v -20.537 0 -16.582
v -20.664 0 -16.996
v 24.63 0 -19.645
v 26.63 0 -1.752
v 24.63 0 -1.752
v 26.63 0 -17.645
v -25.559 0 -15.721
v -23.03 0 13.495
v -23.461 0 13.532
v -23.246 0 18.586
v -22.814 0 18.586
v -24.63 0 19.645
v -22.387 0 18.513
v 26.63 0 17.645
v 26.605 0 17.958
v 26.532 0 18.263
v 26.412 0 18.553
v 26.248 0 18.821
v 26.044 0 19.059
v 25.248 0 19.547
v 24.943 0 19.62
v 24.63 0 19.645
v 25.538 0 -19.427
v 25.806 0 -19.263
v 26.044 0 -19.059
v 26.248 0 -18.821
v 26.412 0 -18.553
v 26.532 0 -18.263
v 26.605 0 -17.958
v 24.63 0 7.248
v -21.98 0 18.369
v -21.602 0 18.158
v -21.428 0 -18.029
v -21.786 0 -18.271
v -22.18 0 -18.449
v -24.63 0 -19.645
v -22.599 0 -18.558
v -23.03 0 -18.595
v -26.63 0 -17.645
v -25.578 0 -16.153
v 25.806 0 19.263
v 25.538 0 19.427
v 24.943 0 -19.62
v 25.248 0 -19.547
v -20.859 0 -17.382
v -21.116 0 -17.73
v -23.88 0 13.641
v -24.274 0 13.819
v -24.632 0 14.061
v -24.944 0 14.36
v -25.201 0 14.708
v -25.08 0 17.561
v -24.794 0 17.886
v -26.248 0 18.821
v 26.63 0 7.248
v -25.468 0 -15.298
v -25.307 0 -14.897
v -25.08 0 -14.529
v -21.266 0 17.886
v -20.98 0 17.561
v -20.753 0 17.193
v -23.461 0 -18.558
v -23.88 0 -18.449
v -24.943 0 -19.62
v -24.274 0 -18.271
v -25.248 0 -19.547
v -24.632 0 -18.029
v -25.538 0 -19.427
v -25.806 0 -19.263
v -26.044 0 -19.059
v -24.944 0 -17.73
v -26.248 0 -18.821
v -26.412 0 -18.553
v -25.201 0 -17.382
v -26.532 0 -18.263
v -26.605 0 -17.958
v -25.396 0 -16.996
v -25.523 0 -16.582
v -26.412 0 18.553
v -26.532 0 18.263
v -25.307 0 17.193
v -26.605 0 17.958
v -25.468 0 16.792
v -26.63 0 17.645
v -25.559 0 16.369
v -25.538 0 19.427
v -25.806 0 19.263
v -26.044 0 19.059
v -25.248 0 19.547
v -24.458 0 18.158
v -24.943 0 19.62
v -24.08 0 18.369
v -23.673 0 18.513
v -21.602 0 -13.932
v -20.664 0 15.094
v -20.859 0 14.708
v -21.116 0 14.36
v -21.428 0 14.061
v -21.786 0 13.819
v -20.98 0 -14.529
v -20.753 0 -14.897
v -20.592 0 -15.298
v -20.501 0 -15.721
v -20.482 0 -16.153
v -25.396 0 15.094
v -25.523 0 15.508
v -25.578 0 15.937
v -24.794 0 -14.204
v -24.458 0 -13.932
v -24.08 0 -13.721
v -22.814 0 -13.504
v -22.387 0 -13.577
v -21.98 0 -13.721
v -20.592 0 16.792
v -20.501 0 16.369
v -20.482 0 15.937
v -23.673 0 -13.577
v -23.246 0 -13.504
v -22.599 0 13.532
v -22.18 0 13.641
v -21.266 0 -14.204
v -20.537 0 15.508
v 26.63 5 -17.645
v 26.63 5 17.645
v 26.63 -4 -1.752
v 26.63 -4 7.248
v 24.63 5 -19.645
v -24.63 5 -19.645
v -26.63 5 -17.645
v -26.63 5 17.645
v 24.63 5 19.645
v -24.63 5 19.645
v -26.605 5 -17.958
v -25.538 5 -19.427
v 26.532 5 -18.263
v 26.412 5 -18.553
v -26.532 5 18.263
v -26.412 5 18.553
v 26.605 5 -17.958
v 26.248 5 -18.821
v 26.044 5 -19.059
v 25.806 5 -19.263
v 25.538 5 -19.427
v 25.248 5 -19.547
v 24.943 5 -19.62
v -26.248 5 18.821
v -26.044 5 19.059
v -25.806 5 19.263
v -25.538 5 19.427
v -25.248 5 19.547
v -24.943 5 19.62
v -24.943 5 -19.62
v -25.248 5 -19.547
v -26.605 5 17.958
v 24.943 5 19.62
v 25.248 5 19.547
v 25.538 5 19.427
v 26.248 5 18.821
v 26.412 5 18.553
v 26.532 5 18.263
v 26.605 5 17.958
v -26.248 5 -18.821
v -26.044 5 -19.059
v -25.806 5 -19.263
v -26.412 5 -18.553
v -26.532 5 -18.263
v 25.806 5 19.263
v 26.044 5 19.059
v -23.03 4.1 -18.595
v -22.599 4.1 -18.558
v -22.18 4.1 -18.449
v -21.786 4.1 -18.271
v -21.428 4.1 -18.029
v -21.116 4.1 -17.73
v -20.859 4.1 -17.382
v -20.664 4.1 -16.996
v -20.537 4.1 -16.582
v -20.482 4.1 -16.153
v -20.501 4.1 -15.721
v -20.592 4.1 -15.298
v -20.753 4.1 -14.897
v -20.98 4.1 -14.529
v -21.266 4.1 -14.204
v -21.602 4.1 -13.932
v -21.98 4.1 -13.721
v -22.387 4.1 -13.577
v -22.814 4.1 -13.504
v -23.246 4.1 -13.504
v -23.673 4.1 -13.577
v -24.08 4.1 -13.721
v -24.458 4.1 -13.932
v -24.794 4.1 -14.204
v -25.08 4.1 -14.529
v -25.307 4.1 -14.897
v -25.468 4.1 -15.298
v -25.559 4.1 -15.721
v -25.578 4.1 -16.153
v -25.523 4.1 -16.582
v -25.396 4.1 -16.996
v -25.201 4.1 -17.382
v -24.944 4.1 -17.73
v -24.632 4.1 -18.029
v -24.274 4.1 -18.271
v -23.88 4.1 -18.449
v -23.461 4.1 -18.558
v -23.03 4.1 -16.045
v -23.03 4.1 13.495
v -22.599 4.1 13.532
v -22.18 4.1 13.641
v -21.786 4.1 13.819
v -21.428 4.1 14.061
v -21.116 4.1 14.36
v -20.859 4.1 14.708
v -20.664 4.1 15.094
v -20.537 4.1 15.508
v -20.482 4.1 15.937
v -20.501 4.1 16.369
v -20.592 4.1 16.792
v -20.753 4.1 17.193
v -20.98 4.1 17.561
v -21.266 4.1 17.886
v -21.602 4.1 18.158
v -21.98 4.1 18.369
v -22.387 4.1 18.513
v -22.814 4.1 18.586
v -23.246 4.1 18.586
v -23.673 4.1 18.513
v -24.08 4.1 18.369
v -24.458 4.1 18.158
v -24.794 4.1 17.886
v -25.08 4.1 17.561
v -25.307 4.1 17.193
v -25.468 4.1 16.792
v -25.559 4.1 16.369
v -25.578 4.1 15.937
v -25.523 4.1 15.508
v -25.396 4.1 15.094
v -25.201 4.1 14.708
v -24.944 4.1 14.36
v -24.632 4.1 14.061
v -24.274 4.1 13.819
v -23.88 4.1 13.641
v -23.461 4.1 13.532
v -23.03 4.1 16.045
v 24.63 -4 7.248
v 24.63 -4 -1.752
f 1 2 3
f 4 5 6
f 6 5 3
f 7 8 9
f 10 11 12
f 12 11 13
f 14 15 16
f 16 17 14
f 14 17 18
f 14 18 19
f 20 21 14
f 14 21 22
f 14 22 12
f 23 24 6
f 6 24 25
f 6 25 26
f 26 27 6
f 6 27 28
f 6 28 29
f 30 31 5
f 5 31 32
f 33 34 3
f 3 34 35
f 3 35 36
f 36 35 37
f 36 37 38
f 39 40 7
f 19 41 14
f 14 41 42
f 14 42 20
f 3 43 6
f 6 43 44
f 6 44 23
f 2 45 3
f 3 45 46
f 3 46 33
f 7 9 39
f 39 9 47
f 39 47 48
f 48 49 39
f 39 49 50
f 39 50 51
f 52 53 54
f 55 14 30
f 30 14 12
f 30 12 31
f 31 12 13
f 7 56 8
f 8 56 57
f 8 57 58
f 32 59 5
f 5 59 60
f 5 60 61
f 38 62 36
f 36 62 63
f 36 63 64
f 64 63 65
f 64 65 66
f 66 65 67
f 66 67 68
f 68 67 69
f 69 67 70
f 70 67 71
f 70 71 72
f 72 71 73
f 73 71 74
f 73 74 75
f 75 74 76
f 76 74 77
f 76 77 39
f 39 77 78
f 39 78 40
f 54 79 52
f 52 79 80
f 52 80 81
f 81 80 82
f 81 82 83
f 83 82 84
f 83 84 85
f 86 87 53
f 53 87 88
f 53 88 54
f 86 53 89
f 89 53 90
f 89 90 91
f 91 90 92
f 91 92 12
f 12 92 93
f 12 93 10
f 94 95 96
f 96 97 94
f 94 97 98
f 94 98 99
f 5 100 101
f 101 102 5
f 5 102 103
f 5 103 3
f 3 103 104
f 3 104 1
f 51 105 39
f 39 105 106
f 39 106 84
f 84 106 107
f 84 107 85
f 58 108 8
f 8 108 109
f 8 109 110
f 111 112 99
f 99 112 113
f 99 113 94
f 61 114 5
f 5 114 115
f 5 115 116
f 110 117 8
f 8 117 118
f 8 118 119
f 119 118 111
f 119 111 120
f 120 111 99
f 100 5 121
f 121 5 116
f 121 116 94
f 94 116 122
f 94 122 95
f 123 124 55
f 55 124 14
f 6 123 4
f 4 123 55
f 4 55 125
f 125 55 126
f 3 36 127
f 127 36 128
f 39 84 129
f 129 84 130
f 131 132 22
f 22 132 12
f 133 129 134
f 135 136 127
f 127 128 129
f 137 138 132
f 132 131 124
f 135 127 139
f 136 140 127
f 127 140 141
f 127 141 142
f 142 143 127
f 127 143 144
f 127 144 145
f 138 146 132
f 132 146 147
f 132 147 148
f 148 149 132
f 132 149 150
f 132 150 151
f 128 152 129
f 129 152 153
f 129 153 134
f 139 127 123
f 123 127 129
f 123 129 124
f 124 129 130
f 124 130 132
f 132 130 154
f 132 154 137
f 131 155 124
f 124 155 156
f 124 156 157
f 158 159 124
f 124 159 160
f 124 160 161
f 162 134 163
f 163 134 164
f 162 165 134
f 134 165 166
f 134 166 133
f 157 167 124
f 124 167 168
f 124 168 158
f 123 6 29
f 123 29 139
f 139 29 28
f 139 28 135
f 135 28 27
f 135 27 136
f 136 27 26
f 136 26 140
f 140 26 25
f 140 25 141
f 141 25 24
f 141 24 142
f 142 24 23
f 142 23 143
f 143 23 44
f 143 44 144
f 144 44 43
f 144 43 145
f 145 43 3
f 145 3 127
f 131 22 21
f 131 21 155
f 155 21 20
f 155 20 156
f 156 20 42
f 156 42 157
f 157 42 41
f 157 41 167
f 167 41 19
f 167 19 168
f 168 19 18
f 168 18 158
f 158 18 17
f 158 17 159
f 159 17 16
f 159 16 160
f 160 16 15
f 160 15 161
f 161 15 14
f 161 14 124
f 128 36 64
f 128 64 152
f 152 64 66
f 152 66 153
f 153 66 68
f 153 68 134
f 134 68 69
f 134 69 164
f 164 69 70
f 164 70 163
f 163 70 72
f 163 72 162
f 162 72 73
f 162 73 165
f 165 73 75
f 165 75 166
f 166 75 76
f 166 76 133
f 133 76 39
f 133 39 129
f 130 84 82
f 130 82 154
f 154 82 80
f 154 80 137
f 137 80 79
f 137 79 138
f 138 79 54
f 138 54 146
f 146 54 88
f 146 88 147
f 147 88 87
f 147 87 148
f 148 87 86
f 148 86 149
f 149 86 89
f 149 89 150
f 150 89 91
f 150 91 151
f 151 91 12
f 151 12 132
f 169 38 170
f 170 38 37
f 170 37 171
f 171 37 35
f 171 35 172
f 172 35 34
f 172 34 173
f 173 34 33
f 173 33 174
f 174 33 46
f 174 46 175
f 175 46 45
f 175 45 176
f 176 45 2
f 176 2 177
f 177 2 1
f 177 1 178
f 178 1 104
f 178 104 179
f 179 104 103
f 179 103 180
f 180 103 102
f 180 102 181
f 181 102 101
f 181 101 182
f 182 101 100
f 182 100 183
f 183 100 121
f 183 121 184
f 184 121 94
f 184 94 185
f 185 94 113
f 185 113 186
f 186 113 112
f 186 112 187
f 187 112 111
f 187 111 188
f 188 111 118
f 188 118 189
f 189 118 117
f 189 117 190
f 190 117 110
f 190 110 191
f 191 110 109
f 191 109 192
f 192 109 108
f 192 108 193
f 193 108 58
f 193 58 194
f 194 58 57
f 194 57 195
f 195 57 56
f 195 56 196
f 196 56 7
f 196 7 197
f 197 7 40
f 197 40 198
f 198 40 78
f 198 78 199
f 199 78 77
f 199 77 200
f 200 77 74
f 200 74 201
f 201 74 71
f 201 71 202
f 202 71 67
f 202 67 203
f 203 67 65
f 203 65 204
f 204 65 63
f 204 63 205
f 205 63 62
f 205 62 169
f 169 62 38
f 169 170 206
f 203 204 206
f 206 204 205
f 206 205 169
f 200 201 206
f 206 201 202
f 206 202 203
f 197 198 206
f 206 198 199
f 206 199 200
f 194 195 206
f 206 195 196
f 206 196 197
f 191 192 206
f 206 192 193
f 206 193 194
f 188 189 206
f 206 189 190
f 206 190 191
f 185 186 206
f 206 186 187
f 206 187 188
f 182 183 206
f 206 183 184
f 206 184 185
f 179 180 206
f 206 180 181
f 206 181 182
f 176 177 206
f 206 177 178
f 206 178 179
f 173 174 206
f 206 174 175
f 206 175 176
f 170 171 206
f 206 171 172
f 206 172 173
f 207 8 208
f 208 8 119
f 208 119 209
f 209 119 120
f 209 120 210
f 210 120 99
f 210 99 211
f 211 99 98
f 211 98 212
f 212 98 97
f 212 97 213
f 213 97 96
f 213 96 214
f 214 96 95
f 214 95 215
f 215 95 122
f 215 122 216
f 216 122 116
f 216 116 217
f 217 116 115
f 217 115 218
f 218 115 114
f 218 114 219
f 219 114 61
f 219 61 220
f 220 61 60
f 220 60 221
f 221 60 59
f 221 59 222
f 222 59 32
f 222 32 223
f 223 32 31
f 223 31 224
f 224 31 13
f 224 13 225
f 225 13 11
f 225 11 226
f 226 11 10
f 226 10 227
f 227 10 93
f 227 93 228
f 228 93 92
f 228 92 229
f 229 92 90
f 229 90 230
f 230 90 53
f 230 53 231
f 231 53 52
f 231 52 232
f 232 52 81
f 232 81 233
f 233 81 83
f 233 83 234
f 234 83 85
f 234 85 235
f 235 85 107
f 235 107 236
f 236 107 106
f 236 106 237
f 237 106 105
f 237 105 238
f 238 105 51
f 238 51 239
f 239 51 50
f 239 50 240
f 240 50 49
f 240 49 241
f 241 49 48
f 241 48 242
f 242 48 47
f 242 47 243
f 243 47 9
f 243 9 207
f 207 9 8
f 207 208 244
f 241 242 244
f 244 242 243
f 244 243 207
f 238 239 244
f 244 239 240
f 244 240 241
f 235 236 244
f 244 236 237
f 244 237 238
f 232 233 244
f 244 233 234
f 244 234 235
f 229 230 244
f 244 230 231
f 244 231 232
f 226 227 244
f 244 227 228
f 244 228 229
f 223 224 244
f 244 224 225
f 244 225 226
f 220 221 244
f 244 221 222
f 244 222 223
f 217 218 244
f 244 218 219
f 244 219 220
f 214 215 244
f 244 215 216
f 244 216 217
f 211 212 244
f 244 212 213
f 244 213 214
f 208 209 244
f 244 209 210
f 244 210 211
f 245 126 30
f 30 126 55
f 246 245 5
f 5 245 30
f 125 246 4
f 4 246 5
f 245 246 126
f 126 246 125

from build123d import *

# Parameters (mm, degrees)
SKETCH1_W           = 53.26
SKETCH1_H           = 39.29
BOSS_EXTRUDE1_DEPTH = 5
FILLET1_R           = 2
SKETCH2_R           = 2.55
CUT_EXTRUDE1_DEPTH  = 4.1
SKETCH3_W           = 2
SKETCH3_H           = 9
BOSS_EXTRUDE2_DEPTH = 4


with BuildPart() as part:
    # Sketch1 → Boss-Extrude1 (new body)
    with BuildSketch(Plane(origin=(0, 0, 0), x_dir=(1, 0, 0), z_dir=(0, 1, 0))):
        Rectangle(SKETCH1_W, SKETCH1_H)
    extrude(amount=BOSS_EXTRUDE1_DEPTH)

    # Fillet1
    fillet1_edges = [part.edges().sort_by_distance(p)[0] for p in [
        (26.63, 2.5, 19.645),
        (-26.63, 2.5, 19.645),
        (-26.63, 2.5, -19.645),
        (26.63, 2.5, -19.645),
    ]]
    fillet(fillet1_edges, radius=FILLET1_R)

    # Sketch2 → Cut-Extrude1 (cut)
    with BuildSketch(Plane(origin=(0, 0, 0), x_dir=(-1, 0, 0), z_dir=(0, -1, 0))):
        with Locations(Location((23.03, -16.045, 0), (0, 0, 90))):
            Circle(SKETCH2_R)
        with Locations(Location((23.03, 16.045, 0), (0, 0, 90))):
            Circle(SKETCH2_R)
    extrude(amount=-CUT_EXTRUDE1_DEPTH, mode=Mode.SUBTRACT)

    # Sketch3 → Boss-Extrude2 (add)
    with BuildSketch(Plane(origin=(0, 0, 0), x_dir=(-1, 0, 0), z_dir=(0, -1, 0))):
        with Locations((-25.63, -2.748)):
            Rectangle(SKETCH3_W, SKETCH3_H)
    extrude(amount=BOSS_EXTRUDE2_DEPTH)


solid = part.part
